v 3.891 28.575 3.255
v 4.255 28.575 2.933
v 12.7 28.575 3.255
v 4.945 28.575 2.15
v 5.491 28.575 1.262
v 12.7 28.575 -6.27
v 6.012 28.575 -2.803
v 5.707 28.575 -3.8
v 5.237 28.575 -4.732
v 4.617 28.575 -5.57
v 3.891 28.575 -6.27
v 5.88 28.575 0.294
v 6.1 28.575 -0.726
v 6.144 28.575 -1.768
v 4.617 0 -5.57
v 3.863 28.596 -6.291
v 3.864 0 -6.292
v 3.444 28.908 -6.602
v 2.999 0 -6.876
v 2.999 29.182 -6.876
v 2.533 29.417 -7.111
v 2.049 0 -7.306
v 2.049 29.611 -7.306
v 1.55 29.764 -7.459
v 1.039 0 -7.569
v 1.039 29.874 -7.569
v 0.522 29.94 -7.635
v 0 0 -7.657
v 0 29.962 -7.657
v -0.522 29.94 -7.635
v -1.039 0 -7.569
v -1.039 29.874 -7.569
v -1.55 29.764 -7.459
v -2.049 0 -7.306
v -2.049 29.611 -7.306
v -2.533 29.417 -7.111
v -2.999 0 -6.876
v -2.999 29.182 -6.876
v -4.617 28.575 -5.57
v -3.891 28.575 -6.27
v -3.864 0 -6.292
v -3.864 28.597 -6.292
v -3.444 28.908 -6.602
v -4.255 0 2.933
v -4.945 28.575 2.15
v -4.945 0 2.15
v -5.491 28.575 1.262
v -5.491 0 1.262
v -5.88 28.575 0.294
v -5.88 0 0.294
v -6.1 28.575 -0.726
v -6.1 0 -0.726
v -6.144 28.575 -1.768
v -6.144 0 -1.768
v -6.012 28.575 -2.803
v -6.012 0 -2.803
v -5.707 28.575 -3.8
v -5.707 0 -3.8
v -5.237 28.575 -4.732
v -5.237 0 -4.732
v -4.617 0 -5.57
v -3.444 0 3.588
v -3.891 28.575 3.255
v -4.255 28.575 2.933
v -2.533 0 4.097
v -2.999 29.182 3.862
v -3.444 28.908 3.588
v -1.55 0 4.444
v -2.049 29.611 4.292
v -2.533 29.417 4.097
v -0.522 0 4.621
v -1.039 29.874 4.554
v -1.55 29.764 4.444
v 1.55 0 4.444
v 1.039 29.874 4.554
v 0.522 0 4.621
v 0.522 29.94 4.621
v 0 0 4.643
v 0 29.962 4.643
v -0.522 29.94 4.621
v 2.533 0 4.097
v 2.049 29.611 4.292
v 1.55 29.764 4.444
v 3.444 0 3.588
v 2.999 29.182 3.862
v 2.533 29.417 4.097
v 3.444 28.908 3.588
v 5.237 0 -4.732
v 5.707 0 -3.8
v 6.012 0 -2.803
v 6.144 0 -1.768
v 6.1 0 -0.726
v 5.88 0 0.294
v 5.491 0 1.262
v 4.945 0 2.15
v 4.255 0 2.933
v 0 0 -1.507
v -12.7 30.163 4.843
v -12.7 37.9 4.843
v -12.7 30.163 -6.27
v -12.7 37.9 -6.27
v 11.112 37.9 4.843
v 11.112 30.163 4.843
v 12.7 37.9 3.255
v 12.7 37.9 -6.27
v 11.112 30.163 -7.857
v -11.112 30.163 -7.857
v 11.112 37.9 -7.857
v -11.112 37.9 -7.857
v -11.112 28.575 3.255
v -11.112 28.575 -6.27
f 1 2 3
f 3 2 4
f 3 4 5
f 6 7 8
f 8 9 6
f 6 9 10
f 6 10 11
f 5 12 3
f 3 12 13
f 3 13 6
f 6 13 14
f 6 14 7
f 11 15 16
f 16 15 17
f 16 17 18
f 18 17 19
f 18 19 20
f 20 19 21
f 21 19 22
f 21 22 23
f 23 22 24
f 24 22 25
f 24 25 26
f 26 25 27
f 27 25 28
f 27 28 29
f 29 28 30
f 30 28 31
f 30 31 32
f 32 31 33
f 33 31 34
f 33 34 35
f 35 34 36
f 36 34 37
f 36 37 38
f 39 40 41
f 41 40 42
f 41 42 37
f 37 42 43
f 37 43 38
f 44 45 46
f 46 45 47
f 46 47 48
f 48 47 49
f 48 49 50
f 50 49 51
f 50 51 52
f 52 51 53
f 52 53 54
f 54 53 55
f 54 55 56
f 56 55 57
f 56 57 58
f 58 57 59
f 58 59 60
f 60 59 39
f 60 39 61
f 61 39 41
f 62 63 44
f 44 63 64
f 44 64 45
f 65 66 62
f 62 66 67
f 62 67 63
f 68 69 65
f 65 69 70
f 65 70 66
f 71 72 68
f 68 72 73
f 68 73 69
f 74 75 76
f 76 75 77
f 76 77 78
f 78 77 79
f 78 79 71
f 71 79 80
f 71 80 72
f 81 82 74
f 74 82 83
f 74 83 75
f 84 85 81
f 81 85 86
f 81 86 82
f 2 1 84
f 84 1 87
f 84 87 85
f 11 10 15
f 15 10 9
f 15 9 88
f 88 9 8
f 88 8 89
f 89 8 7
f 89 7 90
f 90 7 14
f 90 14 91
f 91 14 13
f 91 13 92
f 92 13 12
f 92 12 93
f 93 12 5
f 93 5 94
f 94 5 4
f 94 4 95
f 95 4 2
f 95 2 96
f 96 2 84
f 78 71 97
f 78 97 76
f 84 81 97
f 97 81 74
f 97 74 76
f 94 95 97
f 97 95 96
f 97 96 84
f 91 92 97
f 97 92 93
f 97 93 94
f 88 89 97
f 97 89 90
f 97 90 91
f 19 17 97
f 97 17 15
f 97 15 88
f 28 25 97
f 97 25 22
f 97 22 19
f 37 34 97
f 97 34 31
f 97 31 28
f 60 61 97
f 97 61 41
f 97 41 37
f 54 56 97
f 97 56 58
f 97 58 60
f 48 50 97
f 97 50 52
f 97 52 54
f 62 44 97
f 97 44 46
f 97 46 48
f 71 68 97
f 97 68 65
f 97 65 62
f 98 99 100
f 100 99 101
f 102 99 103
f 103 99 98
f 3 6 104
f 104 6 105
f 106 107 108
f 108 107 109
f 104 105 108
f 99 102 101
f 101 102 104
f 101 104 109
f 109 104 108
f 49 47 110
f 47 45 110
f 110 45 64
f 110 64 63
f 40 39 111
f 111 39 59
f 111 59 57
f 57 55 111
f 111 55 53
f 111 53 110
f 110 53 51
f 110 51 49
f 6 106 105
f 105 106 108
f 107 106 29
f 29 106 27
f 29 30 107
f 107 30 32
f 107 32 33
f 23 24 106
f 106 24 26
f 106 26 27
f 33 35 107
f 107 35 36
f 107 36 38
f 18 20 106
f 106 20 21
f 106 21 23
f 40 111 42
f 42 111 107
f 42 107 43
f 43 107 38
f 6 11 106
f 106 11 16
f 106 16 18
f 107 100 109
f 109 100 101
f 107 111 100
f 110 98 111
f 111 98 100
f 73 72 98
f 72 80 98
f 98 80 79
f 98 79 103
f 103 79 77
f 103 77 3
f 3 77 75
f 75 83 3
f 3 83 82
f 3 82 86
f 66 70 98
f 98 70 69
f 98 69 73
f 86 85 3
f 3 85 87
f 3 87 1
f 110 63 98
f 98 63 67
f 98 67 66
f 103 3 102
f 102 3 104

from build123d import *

# Parameters (mm, degrees)
SKETCH1_R           = 6.15
BOSS_EXTRUDE1_DEPTH = 28.575
SKETCH3_W           = 25.4
SKETCH3_H           = 12.7
BOSS_EXTRUDE2_DEPTH = 9.325


with BuildPart() as part:
    # Sketch1 → Boss-Extrude1 (new body)
    with BuildSketch(Plane(origin=(0, 0, 0), x_dir=(1, 0, 0), z_dir=(0, 1, 0))):
        with Locations(Location((0, 1.507106584, 0), (0, 0, 270))):
            Circle(SKETCH1_R)
    extrude(amount=BOSS_EXTRUDE1_DEPTH)

    # Sketch3 → Boss-Extrude2 (add)
    with BuildSketch(Plane(origin=(0, 28.575, 0), x_dir=(1, 0, 0), z_dir=(0, 1, 0))):
        with Locations((0, 1.507106584)):
            Rectangle(SKETCH3_W, SKETCH3_H)
    extrude(amount=BOSS_EXTRUDE2_DEPTH)

    # Chamfer1
    # the kernel refuses this chamfer: 1.5875 mm, written as the material it takes off along each edge
    with BuildSketch(Plane(origin=(-11.641666667, 29.633333333, -6.798773251), x_dir=(0.7071067811865478, -0.707106781186547, 0), z_dir=(-0.5773502691896255, -0.5773502691896262, -0.5773502691896257))) as chamfer1_piece_1:
        Polygon((-1.122532015, 0.648094161), (1.122532015, 0.648094161), (0, -1.296188322), align=None)
    extrude(amount=2.016395815, mode=Mode.SUBTRACT)
    with BuildSketch(Plane(origin=(-12.7, 28.575, 8.925440159), x_dir=(-0.027495876610586785, 0.9996219169112966, 0), z_dir=(0, 0, -1))) as chamfer1_piece_2:
        with BuildLine():
            Line((1.633018697, 0), (-0.089768608, 1.630549497))
            Line((-0.089768608, 1.630549497), (-0.121506604, 1.629676503))
            ThreePointArc((-0.121506604, 1.629676503), (-0.054180148, 0.815019055), (-0.031737996, -0.000872994))
            Line((-0.031737996, -0.000872994), (0.000872994, -0.031737996))
            ThreePointArc((0.000872994, -0.031737996), (0.816765043, -0.009295844), (1.633891691, -0.031737996))
            Line((1.633891691, -0.031737996), (1.633018697, 0))
        make_face()
    extrude(amount=20.865093487, mode=Mode.SUBTRACT)
    with BuildSketch(Plane(origin=(-12.7, 24.492453257, -7.857106584), x_dir=(-0.02749587661058674, 0, 0.9996219169112966), z_dir=(0, 1, 0))) as chamfer1_piece_3:
        with BuildLine():
            Line((1.633018697, 0), (-0.089768608, 1.630549497))
            Line((-0.089768608, 1.630549497), (-0.121506604, 1.629676503))
            ThreePointArc((-0.121506604, 1.629676503), (-0.054180148, 0.815019055), (-0.031737996, -0.000872994))
            Line((-0.031737996, -0.000872994), (0.000872994, -0.031737996))
            ThreePointArc((0.000872994, -0.031737996), (0.816765043, -0.009295844), (1.633891691, -0.031737996))
            Line((1.633891691, -0.031737996), (1.633018697, 0))
        make_face()
    extrude(amount=17.490093487, mode=Mode.SUBTRACT)
    with BuildSketch(Plane(origin=(16.782546743, 28.575, 4.842893416), x_dir=(0, 0.9996219169112966, 0.02749587661058624), z_dir=(-1, 0, 0))) as chamfer1_piece_4_section:
        with BuildLine():
            Line((1.633018697, 0), (-0.089768608, 1.630549497))
            Line((-0.089768608, 1.630549497), (-0.121506604, 1.629676503))
            ThreePointArc((-0.121506604, 1.629676503), (-0.054180148, 0.815019055), (-0.031737996, -0.000872994))
            Line((-0.031737996, -0.000872994), (0.000872994, -0.031737996))
            ThreePointArc((0.000872994, -0.031737996), (0.816765043, -0.009295844), (1.633891691, -0.031737996))
            Line((1.633891691, -0.031737996), (1.633018697, 0))
        make_face()
    chamfer1_piece_4 = extrude(amount=33.565093487, mode=Mode.PRIVATE)
    chamfer1_piece_4 = chamfer1_piece_4 - Plane(origin=(0, 29.903258734, -1.507106584), x_dir=(0, 0, 1), z_dir=(0, -1, 0)) * Cylinder(6.15, 74, mode=Mode.PRIVATE)
    add(chamfer1_piece_4, mode=Mode.SUBTRACT)
    with BuildSketch(Plane(origin=(12.7, 24.492453257, 4.842893416), x_dir=(-0.9996219169112968, 0, 0.027495876610586185), z_dir=(0, 1, 0)), Plane(origin=(12.7, 24.492453257, -7.857106584), x_dir=(0.027495876610586754, 0, 0.9996219169112966), z_dir=(0, 1, 0))) as chamfer1_piece_5:
        with BuildLine():
            Line((1.633018697, 0), (-0.089768608, -1.630549497))
            Line((-0.089768608, -1.630549497), (-0.121506604, -1.629676503))
            ThreePointArc((-0.121506604, -1.629676503), (-0.054180148, -0.815019055), (-0.031737996, 0.000872994))
            Line((-0.031737996, 0.000872994), (0.000872994, 0.031737996))
            ThreePointArc((0.000872994, 0.031737996), (0.816765043, 0.009295844), (1.633891691, 0.031737996))
            Line((1.633891691, 0.031737996), (1.633018697, 0))
        make_face()
    extrude(amount=17.490093487, mode=Mode.SUBTRACT)
    with BuildSketch(Plane(origin=(-16.782546743, 28.575, -7.857106584), x_dir=(0, -0.027495876610585654, 0.9996219169112968), z_dir=(1, 0, 0))) as chamfer1_piece_6_section:
        with BuildLine():
            Line((1.633018697, 0), (-0.089768608, -1.630549497))
            Line((-0.089768608, -1.630549497), (-0.121506604, -1.629676503))
            ThreePointArc((-0.121506604, -1.629676503), (-0.054180148, -0.815019055), (-0.031737996, 0.000872994))
            Line((-0.031737996, 0.000872994), (0.000872994, 0.031737996))
            ThreePointArc((0.000872994, 0.031737996), (0.816765043, 0.009295844), (1.633891691, 0.031737996))
            Line((1.633891691, 0.031737996), (1.633018697, 0))
        make_face()
    chamfer1_piece_6 = extrude(amount=33.565093487, mode=Mode.PRIVATE)
    chamfer1_piece_6 = chamfer1_piece_6 - Plane(origin=(0, 28.785057027, -1.507106584), x_dir=(0, 0, 1), z_dir=(0, -1, 0)) * Cylinder(6.15, 74, mode=Mode.PRIVATE)
    add(chamfer1_piece_6, mode=Mode.SUBTRACT)


solid = part.part
